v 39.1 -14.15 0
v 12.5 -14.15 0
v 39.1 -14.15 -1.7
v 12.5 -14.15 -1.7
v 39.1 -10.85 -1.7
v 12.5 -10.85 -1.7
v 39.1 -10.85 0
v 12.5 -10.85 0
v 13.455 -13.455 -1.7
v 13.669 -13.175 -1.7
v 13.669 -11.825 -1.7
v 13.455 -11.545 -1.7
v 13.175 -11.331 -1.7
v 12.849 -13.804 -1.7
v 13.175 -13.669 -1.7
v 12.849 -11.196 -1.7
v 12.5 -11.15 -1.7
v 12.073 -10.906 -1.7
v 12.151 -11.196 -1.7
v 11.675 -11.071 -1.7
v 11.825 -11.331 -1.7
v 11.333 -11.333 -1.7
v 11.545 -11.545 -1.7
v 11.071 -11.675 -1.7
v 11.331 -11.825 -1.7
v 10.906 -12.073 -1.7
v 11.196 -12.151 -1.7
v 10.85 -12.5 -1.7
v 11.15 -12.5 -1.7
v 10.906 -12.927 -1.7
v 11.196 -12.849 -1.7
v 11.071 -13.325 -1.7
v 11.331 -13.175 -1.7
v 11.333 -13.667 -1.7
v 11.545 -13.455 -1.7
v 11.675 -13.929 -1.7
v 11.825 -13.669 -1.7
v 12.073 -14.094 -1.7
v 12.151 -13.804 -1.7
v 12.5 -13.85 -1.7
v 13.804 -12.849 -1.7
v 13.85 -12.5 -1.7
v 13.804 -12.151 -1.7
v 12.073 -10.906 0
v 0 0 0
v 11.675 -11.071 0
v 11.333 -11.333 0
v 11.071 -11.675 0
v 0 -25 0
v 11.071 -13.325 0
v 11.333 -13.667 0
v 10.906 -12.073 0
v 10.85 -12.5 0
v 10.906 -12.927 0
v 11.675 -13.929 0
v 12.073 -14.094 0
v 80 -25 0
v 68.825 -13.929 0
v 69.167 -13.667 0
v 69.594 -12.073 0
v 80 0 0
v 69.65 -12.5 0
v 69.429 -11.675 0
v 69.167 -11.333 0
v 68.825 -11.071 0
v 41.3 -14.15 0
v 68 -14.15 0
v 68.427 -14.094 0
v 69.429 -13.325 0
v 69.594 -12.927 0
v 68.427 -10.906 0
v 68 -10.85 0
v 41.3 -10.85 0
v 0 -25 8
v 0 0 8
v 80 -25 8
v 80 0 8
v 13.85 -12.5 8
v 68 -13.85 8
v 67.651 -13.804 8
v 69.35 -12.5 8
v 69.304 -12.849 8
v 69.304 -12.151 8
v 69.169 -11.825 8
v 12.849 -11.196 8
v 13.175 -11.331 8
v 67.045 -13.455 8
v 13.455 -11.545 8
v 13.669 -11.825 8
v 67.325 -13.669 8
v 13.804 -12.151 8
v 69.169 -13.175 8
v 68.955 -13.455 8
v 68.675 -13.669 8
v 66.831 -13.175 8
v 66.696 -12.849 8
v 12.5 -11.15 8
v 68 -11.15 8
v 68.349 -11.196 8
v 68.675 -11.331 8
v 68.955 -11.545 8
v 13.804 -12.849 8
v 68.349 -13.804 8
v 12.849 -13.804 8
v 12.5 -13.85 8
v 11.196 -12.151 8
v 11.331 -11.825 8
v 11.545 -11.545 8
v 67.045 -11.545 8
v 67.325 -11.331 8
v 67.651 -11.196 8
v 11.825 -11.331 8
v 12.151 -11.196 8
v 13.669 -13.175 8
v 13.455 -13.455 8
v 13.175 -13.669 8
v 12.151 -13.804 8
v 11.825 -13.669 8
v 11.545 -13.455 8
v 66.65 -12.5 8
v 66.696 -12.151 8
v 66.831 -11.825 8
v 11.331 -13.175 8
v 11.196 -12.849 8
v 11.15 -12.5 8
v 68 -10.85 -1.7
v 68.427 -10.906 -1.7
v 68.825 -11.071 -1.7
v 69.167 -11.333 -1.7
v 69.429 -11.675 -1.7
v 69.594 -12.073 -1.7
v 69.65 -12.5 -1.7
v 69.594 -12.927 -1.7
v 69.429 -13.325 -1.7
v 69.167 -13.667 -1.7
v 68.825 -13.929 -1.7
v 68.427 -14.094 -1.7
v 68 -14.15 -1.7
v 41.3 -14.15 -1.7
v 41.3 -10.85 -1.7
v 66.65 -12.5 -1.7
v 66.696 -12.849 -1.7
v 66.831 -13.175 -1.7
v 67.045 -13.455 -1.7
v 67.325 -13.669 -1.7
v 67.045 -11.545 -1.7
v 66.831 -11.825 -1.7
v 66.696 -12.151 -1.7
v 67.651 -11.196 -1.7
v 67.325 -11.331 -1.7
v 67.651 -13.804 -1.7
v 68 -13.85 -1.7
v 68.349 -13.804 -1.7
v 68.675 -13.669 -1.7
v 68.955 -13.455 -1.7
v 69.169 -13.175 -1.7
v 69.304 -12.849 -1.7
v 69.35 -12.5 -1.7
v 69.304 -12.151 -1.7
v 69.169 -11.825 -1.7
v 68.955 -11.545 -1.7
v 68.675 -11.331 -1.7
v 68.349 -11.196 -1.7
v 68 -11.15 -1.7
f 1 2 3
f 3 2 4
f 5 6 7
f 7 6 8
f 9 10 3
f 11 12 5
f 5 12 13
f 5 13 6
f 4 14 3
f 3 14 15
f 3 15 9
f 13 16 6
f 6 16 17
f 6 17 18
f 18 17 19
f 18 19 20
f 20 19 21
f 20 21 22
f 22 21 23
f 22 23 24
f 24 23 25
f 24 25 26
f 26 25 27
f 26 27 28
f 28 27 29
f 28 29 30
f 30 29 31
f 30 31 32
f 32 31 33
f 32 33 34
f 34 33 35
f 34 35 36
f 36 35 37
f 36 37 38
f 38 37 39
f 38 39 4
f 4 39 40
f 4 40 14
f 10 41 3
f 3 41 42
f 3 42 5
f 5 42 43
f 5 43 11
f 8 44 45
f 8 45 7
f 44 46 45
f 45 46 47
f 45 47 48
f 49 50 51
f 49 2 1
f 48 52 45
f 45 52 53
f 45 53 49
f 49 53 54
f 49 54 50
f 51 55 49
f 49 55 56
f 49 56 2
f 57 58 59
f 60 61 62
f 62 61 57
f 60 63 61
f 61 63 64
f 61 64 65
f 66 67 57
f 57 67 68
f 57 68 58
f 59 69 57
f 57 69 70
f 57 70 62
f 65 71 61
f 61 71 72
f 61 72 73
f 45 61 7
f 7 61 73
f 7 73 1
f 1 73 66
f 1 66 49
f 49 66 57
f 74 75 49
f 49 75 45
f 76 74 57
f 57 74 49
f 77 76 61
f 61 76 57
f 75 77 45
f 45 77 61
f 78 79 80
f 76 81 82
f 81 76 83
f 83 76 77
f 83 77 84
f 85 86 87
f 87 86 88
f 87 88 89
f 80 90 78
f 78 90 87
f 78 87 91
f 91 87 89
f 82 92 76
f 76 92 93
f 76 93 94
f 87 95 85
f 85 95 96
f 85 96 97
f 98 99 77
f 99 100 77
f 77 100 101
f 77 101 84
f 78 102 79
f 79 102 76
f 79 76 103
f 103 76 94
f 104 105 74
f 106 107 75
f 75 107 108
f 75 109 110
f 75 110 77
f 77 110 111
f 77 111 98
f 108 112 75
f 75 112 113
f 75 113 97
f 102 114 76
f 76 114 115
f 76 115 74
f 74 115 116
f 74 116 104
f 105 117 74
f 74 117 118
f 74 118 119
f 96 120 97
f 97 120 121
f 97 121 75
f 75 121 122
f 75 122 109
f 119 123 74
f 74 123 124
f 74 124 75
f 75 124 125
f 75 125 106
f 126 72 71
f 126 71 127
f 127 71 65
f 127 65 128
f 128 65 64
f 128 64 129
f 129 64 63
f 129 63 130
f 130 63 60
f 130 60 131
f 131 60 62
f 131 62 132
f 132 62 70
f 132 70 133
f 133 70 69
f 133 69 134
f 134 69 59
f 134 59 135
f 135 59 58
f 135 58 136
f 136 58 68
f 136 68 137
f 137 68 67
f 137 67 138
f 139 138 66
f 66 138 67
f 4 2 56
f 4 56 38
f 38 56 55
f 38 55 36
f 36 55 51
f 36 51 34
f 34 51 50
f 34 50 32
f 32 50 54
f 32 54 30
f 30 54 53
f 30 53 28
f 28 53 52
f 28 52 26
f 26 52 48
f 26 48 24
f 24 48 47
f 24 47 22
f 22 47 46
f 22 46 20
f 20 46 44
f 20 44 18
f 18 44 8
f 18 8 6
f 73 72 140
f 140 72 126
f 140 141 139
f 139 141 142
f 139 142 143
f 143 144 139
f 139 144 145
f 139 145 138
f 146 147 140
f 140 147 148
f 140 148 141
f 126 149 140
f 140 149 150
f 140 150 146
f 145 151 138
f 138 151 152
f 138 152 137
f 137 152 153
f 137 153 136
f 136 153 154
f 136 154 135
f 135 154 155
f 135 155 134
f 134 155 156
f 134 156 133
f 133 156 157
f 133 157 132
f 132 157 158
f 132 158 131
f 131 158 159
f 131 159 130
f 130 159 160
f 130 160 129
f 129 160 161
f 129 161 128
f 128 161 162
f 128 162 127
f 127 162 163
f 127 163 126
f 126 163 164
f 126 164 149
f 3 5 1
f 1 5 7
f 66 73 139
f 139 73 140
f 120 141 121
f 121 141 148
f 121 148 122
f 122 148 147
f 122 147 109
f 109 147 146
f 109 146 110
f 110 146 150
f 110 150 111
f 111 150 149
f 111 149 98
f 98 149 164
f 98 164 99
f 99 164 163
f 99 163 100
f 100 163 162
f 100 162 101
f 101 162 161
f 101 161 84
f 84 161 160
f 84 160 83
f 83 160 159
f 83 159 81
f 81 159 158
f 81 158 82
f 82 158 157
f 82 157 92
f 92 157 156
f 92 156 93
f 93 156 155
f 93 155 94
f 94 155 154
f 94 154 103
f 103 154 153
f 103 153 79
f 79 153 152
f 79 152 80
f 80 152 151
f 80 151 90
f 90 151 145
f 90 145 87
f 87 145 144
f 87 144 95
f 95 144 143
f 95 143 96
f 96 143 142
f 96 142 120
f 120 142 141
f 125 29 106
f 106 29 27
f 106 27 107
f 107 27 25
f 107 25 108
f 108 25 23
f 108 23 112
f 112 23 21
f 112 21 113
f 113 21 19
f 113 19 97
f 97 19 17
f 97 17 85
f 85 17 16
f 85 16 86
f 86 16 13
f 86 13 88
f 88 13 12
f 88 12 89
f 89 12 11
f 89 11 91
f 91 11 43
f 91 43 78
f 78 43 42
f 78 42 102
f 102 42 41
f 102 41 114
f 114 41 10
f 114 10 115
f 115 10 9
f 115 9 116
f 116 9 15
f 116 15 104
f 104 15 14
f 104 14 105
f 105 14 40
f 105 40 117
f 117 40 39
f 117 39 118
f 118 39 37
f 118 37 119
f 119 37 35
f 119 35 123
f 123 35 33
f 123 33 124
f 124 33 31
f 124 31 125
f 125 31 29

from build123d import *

# Parameters (mm, degrees)
SKETCH_1_W          = 80
SKETCH_1_H          = 25
EXTRUDE_1_DEPTH     = 8
EXTRUDE_2_DEPTH     = 1.7
SKETCH_5_W          = 2.2
SKETCH_5_H          = 1.7
CUT_EXTRUDE_1_DEPTH = 7
SKETCH_3_R          = 1.35
CUT_EXTRUDE_2_DEPTH = 85.374699999


with BuildPart() as part:
    # 草图1 → 凸台-拉伸1 (new body)
    with BuildSketch(Plane.XY):
        with Locations((40, -12.5)):
            Rectangle(SKETCH_1_W, SKETCH_1_H)
    extrude(amount=EXTRUDE_1_DEPTH)

    # 草图2 → 凸台-拉伸2 (add)
    with BuildSketch(Plane(origin=(0, 0, 0), x_dir=(-1, 0, 0), z_dir=(0, 0, -1))):
        with BuildLine():
            Line((-68, -10.85), (-12.5, -10.85))
            ThreePointArc((-12.5, -10.85), (-10.85, -12.5), (-12.5, -14.15))
            Line((-12.5, -14.15), (-68, -14.15))
            ThreePointArc((-68, -14.15), (-69.65, -12.5), (-68, -10.85))
        make_face()
    extrude(amount=EXTRUDE_2_DEPTH)

    # 草图5 → 切除-拉伸1 (cut)
    with BuildSketch(Plane.XZ.offset(14.15)):
        with Locations((40.2, -0.85)):
            Rectangle(SKETCH_5_W, SKETCH_5_H)
    extrude(amount=-CUT_EXTRUDE_1_DEPTH, mode=Mode.SUBTRACT)

    # 草图3 → 切除-拉伸2 (cut, through all)
    with BuildSketch(Plane(origin=(0, 0, -1.7), x_dir=(-1, 0, 0), z_dir=(0, 0, -1))):
        with Locations((-68, -12.5)):
            Circle(SKETCH_3_R)
        with Locations((-12.5, -12.5)):
            Circle(SKETCH_3_R)
    extrude(amount=-CUT_EXTRUDE_2_DEPTH, mode=Mode.SUBTRACT)


solid = part.part
